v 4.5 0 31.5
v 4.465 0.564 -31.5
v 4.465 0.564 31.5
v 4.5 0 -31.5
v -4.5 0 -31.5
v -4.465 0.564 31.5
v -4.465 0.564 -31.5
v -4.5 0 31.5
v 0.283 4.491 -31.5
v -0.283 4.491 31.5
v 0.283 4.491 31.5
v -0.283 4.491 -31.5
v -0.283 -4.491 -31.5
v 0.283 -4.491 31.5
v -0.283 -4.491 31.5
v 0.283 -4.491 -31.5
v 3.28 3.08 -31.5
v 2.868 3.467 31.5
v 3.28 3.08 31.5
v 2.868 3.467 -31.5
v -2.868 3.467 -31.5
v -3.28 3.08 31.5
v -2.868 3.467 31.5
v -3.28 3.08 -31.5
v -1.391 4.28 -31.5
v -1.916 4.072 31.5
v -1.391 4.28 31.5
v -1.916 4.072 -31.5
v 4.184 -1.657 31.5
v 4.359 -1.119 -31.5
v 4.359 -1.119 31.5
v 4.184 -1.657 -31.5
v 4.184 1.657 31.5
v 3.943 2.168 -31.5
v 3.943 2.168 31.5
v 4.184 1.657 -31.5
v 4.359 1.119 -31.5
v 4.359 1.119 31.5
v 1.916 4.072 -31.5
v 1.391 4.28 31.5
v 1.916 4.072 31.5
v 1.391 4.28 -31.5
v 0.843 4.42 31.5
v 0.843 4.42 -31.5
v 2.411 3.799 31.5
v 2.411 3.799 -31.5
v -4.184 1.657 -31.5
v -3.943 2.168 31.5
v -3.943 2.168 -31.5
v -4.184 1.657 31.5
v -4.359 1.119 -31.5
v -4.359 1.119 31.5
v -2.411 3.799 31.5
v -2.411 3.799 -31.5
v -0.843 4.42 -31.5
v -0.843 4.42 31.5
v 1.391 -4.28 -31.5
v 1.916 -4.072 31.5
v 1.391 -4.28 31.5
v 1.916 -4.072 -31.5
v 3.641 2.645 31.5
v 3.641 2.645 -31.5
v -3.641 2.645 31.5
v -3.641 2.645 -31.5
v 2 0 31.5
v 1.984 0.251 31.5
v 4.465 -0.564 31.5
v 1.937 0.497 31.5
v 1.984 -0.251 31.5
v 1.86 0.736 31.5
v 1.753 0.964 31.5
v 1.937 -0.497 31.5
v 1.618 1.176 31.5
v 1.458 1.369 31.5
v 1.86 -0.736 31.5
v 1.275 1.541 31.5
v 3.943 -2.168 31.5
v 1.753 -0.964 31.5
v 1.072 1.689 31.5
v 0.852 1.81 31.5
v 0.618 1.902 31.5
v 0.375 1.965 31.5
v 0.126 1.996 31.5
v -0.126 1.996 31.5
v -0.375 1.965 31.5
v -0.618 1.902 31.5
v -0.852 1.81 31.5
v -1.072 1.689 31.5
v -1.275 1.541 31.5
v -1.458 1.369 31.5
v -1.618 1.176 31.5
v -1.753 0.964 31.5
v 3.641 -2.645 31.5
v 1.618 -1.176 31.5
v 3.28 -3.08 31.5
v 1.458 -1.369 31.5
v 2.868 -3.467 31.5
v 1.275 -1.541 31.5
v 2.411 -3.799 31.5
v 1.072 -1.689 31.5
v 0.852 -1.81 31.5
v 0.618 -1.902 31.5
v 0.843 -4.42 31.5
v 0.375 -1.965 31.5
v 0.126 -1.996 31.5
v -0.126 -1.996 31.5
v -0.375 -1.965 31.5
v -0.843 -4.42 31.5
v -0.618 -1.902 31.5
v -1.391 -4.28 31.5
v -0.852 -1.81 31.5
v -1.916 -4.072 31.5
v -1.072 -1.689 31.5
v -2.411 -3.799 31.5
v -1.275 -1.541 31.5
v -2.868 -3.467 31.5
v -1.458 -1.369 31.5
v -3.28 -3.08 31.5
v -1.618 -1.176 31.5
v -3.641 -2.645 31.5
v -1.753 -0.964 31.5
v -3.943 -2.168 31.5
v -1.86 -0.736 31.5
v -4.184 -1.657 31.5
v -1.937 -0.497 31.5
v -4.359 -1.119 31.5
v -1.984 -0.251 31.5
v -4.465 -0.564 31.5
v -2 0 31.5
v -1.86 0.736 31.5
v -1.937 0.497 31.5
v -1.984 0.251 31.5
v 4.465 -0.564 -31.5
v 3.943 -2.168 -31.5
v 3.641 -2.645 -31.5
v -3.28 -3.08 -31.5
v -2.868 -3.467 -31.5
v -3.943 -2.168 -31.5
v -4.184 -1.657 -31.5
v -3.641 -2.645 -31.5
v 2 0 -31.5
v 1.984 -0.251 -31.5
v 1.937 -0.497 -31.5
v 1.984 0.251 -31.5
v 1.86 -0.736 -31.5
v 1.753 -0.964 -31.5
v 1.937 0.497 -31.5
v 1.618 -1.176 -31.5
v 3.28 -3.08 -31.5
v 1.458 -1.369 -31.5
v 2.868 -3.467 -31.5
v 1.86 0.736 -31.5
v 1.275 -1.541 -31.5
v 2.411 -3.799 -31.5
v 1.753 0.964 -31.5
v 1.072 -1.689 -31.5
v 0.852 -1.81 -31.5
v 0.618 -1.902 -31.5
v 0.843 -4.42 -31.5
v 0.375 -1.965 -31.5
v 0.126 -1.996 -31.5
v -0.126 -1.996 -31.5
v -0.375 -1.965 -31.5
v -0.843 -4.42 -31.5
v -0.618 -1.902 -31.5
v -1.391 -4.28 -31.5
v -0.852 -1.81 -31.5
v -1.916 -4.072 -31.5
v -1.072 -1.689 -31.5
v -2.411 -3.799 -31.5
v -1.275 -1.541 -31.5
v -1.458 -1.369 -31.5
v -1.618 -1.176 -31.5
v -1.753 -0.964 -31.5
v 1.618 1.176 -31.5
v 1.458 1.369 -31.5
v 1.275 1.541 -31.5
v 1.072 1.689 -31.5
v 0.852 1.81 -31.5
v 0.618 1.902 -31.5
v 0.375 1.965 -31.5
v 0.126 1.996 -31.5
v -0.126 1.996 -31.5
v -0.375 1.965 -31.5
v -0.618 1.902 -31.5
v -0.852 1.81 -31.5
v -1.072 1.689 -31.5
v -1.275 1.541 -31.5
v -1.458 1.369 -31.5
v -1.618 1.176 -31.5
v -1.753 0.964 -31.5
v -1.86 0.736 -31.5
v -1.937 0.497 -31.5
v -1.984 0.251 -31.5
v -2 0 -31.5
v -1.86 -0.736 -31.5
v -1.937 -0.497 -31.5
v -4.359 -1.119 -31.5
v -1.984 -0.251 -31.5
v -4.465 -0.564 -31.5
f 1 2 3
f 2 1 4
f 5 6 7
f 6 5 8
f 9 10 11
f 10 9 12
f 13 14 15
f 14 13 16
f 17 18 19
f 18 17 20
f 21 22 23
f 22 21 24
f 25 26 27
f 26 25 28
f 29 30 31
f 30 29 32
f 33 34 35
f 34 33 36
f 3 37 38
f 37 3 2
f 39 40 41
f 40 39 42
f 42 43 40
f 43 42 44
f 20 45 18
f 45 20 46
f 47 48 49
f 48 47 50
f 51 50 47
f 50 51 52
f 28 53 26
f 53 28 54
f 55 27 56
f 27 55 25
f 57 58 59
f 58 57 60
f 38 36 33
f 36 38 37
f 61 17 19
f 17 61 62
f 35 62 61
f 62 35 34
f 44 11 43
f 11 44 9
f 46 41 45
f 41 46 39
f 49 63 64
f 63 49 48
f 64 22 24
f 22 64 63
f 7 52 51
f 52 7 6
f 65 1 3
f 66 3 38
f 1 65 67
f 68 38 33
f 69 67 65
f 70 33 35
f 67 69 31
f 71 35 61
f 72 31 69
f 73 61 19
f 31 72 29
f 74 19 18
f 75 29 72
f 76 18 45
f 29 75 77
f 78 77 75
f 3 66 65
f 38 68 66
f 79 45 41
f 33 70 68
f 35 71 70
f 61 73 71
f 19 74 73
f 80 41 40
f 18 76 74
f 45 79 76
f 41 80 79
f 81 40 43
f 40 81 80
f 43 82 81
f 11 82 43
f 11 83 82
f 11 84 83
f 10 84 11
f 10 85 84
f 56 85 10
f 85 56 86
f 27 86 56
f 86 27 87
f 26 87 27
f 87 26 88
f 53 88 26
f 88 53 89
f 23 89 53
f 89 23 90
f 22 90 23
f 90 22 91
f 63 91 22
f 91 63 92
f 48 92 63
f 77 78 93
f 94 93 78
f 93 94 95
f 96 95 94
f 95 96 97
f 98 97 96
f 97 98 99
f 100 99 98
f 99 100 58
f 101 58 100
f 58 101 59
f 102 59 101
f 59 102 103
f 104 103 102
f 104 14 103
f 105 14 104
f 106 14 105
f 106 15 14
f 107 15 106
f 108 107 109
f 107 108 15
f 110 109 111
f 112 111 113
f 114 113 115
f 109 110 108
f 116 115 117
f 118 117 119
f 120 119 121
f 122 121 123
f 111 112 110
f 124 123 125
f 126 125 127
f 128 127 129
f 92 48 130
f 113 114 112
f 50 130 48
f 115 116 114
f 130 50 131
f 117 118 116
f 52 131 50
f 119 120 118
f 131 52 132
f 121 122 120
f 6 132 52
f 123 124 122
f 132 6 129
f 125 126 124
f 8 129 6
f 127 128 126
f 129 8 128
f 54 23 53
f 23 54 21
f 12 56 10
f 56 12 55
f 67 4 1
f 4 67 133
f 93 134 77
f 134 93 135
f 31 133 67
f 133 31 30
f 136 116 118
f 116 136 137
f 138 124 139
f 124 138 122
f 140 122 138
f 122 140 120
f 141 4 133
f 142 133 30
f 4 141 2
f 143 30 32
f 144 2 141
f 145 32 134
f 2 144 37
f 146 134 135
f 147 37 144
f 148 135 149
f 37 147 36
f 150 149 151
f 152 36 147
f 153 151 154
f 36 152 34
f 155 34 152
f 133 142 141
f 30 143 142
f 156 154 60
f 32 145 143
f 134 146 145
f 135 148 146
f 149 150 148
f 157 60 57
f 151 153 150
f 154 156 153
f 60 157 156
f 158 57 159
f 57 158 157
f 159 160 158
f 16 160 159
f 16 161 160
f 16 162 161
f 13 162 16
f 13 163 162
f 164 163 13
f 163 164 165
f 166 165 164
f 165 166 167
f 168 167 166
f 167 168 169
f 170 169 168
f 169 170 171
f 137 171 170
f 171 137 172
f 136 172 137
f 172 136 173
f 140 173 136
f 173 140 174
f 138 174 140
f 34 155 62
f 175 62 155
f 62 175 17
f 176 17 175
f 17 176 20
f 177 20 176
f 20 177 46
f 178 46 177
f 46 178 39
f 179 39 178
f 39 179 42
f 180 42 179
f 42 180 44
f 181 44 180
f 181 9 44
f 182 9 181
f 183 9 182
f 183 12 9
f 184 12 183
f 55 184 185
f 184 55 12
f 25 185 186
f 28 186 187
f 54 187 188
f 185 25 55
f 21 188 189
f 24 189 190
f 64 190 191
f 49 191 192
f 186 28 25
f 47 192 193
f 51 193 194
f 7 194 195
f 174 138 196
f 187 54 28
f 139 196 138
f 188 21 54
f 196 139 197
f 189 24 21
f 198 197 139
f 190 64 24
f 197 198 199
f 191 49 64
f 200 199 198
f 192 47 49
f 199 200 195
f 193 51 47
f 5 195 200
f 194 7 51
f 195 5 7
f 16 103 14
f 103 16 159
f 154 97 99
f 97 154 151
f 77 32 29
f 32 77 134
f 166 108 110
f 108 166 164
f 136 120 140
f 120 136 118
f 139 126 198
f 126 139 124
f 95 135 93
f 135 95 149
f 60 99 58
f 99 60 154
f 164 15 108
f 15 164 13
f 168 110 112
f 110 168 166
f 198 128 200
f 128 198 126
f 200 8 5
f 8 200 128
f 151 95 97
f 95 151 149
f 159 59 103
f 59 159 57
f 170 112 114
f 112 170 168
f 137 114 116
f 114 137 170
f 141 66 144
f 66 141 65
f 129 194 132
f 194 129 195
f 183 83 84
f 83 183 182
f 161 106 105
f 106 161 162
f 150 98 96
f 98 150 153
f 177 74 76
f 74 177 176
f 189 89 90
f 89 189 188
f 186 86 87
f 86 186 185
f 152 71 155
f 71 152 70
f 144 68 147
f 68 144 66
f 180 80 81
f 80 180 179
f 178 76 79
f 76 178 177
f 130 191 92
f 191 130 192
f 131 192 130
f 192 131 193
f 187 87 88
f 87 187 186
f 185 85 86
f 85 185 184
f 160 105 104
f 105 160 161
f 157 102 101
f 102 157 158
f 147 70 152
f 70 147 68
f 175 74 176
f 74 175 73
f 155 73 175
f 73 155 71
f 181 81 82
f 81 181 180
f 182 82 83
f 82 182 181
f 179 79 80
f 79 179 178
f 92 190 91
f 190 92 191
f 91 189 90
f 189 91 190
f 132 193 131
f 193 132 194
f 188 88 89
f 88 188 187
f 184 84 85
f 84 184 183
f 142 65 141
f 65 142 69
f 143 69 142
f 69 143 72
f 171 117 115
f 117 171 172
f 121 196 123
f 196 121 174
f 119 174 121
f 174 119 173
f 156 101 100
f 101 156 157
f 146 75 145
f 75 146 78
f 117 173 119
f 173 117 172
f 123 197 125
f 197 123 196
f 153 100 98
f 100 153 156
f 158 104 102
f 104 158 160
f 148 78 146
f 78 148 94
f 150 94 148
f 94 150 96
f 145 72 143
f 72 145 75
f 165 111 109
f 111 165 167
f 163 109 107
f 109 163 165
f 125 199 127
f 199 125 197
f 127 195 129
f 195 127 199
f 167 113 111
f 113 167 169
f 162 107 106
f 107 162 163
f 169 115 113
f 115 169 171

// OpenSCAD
$fn = 50;


difference() {
	union() {
		translate(v = [0, 0, -31.5000000000]) {
			cylinder(h = 63, r = 4.5000000000);
		}
	}
	union() {
		translate(v = [0, 0, -100.0000000000]) {
			cylinder(h = 200, r = 2);
		}
	}
}
